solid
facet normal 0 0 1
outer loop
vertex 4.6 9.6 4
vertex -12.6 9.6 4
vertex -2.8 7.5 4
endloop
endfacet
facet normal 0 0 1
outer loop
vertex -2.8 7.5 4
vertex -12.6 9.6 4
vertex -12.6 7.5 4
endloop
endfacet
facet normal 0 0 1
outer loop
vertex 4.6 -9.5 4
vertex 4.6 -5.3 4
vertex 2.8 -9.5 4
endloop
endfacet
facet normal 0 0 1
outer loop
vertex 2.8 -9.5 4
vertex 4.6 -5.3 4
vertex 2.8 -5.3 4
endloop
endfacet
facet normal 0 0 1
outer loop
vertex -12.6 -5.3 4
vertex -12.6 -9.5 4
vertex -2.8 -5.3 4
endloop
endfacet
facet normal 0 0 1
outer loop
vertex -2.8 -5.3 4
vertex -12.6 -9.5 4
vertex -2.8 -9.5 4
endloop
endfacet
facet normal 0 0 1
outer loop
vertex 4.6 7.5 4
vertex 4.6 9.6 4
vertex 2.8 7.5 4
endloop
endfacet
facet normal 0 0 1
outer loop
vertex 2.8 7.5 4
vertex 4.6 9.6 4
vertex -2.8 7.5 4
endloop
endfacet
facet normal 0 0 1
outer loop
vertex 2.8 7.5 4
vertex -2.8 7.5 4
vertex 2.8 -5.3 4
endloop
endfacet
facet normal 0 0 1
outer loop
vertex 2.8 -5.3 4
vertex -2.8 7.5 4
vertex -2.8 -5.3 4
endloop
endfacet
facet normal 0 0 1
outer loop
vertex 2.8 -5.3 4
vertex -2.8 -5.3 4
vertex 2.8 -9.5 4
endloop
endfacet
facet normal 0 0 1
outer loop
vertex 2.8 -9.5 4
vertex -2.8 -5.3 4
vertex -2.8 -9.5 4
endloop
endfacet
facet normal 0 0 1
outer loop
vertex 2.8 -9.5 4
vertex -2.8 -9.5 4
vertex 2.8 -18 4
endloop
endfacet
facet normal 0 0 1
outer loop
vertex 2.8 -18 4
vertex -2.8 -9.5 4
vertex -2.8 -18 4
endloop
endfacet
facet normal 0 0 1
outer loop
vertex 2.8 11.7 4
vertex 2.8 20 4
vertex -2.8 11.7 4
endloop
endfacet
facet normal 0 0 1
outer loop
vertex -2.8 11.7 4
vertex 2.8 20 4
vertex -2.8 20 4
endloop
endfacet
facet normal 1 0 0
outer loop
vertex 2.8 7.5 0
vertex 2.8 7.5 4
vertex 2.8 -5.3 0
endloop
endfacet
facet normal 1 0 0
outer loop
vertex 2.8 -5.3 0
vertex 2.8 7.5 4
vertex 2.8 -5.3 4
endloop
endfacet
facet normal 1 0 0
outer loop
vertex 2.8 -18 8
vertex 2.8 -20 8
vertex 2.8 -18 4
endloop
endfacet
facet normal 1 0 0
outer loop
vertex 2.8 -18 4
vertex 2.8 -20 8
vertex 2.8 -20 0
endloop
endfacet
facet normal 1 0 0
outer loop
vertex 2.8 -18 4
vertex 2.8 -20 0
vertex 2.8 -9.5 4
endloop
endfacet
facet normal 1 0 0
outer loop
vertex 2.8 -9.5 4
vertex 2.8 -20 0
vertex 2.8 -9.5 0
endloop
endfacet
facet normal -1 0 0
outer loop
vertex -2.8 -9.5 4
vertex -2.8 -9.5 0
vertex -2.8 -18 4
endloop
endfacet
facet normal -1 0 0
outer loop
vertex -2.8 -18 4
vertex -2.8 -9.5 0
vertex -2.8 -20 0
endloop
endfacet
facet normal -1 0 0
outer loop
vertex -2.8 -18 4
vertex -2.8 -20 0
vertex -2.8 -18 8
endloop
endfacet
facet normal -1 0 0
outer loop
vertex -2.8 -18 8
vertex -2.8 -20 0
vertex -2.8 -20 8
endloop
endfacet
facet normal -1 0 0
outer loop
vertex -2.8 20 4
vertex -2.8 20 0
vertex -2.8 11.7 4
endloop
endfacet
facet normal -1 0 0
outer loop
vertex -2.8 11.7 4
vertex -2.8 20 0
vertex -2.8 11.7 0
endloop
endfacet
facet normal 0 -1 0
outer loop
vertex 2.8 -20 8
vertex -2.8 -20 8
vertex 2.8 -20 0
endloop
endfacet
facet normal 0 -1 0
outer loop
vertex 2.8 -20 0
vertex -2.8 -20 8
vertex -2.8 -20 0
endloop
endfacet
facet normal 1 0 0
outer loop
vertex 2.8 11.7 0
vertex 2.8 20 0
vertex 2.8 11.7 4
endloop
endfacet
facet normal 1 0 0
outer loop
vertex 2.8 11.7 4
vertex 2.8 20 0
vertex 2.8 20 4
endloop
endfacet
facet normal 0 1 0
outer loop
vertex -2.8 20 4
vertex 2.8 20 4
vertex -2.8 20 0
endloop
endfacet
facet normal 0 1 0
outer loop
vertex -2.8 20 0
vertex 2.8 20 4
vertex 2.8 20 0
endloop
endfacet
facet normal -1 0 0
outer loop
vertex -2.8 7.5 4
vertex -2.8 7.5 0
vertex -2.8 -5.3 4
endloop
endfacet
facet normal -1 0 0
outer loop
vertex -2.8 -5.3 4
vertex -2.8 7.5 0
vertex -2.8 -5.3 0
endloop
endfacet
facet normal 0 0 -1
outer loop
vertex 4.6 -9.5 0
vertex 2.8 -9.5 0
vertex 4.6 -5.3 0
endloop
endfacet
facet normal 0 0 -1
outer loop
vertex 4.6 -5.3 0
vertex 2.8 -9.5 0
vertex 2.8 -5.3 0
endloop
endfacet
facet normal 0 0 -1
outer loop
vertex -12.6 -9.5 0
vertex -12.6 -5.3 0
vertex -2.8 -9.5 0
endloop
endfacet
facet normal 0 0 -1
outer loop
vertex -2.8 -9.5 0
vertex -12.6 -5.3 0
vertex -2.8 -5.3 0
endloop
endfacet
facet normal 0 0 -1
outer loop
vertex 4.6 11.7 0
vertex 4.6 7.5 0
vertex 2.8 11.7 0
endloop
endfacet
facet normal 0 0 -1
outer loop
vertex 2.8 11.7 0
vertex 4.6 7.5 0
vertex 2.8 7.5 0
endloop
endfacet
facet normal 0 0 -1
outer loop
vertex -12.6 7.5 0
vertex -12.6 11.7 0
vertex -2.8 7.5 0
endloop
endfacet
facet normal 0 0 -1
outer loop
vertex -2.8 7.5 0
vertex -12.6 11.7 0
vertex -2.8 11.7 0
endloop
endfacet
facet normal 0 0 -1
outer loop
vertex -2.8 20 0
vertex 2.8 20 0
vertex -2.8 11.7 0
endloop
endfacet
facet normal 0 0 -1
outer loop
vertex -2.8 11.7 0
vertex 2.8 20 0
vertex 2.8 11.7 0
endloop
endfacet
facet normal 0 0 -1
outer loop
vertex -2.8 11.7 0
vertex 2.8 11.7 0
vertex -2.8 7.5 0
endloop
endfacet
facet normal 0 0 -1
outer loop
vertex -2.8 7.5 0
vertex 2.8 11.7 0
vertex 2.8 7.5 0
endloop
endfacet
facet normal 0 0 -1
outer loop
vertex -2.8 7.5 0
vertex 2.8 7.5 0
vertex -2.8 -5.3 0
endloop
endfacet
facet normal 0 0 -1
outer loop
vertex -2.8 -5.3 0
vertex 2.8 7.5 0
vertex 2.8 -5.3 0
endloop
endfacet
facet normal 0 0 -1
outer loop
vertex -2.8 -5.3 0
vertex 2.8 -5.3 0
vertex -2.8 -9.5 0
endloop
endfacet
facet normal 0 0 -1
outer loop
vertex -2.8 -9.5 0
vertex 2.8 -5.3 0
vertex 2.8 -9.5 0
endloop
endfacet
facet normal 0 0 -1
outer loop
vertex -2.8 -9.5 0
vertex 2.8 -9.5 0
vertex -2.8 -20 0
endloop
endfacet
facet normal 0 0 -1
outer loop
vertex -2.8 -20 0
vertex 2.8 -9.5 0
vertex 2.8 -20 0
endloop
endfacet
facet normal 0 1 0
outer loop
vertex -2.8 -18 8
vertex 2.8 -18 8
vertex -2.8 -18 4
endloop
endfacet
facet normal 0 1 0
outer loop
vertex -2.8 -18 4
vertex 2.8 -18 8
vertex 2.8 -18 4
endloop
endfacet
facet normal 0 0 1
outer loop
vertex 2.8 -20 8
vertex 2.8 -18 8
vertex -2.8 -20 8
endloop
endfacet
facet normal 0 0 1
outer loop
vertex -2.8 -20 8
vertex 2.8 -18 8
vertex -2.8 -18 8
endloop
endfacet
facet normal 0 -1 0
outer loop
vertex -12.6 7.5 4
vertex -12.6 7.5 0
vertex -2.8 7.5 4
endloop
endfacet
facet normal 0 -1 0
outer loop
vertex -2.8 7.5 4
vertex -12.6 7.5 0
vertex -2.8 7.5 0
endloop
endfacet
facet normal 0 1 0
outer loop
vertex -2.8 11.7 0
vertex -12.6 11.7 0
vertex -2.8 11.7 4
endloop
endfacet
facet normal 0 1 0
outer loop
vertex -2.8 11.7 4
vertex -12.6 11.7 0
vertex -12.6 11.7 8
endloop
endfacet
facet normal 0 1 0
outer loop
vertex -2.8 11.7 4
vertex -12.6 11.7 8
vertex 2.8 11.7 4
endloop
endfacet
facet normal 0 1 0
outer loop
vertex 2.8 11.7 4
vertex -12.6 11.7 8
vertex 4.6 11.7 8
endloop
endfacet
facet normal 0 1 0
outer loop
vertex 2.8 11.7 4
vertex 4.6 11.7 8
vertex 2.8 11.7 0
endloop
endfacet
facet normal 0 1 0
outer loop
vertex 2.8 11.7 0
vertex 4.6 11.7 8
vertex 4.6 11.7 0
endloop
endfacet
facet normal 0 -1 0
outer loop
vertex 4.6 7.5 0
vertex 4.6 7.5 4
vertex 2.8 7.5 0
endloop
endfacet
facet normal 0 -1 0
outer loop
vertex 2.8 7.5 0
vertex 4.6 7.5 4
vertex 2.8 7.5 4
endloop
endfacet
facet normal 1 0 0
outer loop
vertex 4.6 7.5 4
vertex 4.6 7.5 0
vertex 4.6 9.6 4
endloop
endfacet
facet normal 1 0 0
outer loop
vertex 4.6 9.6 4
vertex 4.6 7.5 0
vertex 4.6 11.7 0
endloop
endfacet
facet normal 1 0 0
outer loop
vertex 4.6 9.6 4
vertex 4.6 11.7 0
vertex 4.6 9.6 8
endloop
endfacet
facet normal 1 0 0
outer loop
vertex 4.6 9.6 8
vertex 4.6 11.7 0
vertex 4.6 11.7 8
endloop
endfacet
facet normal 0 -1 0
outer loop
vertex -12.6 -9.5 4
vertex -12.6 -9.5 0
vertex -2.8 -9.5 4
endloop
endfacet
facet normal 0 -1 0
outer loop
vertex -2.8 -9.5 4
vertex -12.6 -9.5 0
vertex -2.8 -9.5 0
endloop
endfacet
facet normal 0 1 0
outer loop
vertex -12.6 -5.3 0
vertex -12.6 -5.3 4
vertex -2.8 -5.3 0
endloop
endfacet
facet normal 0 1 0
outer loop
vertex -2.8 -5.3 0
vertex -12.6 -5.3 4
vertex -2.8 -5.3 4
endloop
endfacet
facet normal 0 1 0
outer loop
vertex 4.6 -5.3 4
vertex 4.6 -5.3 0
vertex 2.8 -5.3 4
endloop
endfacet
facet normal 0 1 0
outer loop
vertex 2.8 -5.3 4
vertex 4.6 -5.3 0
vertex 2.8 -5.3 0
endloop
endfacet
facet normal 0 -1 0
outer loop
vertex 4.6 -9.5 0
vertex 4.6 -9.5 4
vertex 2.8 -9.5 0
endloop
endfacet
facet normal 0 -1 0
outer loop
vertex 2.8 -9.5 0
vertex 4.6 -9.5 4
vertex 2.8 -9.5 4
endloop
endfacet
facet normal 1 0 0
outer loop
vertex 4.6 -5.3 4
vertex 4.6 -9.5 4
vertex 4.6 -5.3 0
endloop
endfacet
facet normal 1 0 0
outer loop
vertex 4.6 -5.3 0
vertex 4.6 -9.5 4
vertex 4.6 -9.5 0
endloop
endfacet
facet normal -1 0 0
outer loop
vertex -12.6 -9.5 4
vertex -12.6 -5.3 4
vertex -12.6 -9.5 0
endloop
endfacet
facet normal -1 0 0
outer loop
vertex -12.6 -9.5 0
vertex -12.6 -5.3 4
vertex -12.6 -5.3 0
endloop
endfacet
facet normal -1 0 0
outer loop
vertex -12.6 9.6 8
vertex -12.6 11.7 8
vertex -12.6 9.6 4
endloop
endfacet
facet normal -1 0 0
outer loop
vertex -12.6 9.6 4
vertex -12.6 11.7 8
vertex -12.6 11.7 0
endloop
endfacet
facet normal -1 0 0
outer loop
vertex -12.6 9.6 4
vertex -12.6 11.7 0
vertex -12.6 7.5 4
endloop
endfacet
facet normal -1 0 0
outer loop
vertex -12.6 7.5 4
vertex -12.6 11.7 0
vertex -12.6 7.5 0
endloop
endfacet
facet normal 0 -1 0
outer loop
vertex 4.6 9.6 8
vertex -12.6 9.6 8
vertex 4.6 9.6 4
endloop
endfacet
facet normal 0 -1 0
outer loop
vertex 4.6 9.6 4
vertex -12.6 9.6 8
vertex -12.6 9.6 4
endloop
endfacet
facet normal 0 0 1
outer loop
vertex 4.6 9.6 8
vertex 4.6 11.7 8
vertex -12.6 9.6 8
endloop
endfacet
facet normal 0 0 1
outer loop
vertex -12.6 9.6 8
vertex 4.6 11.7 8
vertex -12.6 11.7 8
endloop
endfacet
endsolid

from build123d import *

# Parameters (mm, degrees)
SKETCH1_W               = 5.6
SKETCH1_H               = 40
BOSS_EXTRUDE1_DEPTH     = 4
SKETCH2_W               = 5.6
SKETCH2_H               = 2
BOSS_EXTRUDE2_DEPTH     = 4
SKETCH4_W               = 4
SKETCH4_H               = 4.2
BOSS_EXTRUDE3_DEPTH     = 1.8
MIRROR2_COPY_1_SKETCH_W = 4
MIRROR2_COPY_1_SKETCH_H = 4.2
MIRROR2_COPY_1_DEPTH    = 1.8
SKETCH8_W               = 4
SKETCH8_H               = 4.2
BOSS_EXTRUDE4_DEPTH     = 8
SKETCH9_W               = 17.2
SKETCH9_H               = 2.1
BOSS_EXTRUDE5_DEPTH     = 4


with BuildPart() as part:
    # Sketch1 → Boss-Extrude1 (new body)
    with BuildSketch(Plane.XY):
        Rectangle(SKETCH1_W, SKETCH1_H)
    extrude(amount=BOSS_EXTRUDE1_DEPTH)

    # Sketch2 → Boss-Extrude2 (add)
    with BuildSketch(Plane.XY.offset(4)):
        with Locations((0, -19)):
            Rectangle(SKETCH2_W, SKETCH2_H)
    extrude(amount=BOSS_EXTRUDE2_DEPTH)

    # Sketch4 → Boss-Extrude3 (add)
    with BuildSketch(Plane.ZY.offset(2.8)):
        with Locations((2, 9.6)):
            Rectangle(SKETCH4_W, SKETCH4_H)
    boss_extrude3 = extrude(amount=BOSS_EXTRUDE3_DEPTH)

    # Mirror1: Boss-Extrude3 across plane
    add(boss_extrude3.mirror(Plane.ZY))

    # Mirror2: Boss-Extrude3 across plane
    add(boss_extrude3.mirror(Plane(origin=(0, 1.1, 0), x_dir=(0, 0, 1), z_dir=(0, -1, 0))))

    # Mirror2 copy 1 sketch → Mirror2 copy 1 (add)
    with BuildSketch(Plane(origin=(2.8, 2.2, 0), x_dir=(0, 0, 1), z_dir=(1, 0, 0))):
        with Locations((2, 9.6)):
            Rectangle(MIRROR2_COPY_1_SKETCH_W, MIRROR2_COPY_1_SKETCH_H)
    extrude(amount=MIRROR2_COPY_1_DEPTH)

    # Sketch8 → Boss-Extrude4 (add)
    with BuildSketch(Plane.ZY.offset(4.6)):
        with Locations((2, 9.6)):
            Rectangle(SKETCH8_W, SKETCH8_H)
        with Locations((2, -7.4)):
            Rectangle(SKETCH8_W, SKETCH8_H)
    extrude(amount=BOSS_EXTRUDE4_DEPTH)

    # Sketch9 → Boss-Extrude5 (add)
    with BuildSketch(Plane.XY.offset(4)):
        with Locations((-4, 10.65)):
            Rectangle(SKETCH9_W, SKETCH9_H)
    extrude(amount=BOSS_EXTRUDE5_DEPTH)


solid = part.part
